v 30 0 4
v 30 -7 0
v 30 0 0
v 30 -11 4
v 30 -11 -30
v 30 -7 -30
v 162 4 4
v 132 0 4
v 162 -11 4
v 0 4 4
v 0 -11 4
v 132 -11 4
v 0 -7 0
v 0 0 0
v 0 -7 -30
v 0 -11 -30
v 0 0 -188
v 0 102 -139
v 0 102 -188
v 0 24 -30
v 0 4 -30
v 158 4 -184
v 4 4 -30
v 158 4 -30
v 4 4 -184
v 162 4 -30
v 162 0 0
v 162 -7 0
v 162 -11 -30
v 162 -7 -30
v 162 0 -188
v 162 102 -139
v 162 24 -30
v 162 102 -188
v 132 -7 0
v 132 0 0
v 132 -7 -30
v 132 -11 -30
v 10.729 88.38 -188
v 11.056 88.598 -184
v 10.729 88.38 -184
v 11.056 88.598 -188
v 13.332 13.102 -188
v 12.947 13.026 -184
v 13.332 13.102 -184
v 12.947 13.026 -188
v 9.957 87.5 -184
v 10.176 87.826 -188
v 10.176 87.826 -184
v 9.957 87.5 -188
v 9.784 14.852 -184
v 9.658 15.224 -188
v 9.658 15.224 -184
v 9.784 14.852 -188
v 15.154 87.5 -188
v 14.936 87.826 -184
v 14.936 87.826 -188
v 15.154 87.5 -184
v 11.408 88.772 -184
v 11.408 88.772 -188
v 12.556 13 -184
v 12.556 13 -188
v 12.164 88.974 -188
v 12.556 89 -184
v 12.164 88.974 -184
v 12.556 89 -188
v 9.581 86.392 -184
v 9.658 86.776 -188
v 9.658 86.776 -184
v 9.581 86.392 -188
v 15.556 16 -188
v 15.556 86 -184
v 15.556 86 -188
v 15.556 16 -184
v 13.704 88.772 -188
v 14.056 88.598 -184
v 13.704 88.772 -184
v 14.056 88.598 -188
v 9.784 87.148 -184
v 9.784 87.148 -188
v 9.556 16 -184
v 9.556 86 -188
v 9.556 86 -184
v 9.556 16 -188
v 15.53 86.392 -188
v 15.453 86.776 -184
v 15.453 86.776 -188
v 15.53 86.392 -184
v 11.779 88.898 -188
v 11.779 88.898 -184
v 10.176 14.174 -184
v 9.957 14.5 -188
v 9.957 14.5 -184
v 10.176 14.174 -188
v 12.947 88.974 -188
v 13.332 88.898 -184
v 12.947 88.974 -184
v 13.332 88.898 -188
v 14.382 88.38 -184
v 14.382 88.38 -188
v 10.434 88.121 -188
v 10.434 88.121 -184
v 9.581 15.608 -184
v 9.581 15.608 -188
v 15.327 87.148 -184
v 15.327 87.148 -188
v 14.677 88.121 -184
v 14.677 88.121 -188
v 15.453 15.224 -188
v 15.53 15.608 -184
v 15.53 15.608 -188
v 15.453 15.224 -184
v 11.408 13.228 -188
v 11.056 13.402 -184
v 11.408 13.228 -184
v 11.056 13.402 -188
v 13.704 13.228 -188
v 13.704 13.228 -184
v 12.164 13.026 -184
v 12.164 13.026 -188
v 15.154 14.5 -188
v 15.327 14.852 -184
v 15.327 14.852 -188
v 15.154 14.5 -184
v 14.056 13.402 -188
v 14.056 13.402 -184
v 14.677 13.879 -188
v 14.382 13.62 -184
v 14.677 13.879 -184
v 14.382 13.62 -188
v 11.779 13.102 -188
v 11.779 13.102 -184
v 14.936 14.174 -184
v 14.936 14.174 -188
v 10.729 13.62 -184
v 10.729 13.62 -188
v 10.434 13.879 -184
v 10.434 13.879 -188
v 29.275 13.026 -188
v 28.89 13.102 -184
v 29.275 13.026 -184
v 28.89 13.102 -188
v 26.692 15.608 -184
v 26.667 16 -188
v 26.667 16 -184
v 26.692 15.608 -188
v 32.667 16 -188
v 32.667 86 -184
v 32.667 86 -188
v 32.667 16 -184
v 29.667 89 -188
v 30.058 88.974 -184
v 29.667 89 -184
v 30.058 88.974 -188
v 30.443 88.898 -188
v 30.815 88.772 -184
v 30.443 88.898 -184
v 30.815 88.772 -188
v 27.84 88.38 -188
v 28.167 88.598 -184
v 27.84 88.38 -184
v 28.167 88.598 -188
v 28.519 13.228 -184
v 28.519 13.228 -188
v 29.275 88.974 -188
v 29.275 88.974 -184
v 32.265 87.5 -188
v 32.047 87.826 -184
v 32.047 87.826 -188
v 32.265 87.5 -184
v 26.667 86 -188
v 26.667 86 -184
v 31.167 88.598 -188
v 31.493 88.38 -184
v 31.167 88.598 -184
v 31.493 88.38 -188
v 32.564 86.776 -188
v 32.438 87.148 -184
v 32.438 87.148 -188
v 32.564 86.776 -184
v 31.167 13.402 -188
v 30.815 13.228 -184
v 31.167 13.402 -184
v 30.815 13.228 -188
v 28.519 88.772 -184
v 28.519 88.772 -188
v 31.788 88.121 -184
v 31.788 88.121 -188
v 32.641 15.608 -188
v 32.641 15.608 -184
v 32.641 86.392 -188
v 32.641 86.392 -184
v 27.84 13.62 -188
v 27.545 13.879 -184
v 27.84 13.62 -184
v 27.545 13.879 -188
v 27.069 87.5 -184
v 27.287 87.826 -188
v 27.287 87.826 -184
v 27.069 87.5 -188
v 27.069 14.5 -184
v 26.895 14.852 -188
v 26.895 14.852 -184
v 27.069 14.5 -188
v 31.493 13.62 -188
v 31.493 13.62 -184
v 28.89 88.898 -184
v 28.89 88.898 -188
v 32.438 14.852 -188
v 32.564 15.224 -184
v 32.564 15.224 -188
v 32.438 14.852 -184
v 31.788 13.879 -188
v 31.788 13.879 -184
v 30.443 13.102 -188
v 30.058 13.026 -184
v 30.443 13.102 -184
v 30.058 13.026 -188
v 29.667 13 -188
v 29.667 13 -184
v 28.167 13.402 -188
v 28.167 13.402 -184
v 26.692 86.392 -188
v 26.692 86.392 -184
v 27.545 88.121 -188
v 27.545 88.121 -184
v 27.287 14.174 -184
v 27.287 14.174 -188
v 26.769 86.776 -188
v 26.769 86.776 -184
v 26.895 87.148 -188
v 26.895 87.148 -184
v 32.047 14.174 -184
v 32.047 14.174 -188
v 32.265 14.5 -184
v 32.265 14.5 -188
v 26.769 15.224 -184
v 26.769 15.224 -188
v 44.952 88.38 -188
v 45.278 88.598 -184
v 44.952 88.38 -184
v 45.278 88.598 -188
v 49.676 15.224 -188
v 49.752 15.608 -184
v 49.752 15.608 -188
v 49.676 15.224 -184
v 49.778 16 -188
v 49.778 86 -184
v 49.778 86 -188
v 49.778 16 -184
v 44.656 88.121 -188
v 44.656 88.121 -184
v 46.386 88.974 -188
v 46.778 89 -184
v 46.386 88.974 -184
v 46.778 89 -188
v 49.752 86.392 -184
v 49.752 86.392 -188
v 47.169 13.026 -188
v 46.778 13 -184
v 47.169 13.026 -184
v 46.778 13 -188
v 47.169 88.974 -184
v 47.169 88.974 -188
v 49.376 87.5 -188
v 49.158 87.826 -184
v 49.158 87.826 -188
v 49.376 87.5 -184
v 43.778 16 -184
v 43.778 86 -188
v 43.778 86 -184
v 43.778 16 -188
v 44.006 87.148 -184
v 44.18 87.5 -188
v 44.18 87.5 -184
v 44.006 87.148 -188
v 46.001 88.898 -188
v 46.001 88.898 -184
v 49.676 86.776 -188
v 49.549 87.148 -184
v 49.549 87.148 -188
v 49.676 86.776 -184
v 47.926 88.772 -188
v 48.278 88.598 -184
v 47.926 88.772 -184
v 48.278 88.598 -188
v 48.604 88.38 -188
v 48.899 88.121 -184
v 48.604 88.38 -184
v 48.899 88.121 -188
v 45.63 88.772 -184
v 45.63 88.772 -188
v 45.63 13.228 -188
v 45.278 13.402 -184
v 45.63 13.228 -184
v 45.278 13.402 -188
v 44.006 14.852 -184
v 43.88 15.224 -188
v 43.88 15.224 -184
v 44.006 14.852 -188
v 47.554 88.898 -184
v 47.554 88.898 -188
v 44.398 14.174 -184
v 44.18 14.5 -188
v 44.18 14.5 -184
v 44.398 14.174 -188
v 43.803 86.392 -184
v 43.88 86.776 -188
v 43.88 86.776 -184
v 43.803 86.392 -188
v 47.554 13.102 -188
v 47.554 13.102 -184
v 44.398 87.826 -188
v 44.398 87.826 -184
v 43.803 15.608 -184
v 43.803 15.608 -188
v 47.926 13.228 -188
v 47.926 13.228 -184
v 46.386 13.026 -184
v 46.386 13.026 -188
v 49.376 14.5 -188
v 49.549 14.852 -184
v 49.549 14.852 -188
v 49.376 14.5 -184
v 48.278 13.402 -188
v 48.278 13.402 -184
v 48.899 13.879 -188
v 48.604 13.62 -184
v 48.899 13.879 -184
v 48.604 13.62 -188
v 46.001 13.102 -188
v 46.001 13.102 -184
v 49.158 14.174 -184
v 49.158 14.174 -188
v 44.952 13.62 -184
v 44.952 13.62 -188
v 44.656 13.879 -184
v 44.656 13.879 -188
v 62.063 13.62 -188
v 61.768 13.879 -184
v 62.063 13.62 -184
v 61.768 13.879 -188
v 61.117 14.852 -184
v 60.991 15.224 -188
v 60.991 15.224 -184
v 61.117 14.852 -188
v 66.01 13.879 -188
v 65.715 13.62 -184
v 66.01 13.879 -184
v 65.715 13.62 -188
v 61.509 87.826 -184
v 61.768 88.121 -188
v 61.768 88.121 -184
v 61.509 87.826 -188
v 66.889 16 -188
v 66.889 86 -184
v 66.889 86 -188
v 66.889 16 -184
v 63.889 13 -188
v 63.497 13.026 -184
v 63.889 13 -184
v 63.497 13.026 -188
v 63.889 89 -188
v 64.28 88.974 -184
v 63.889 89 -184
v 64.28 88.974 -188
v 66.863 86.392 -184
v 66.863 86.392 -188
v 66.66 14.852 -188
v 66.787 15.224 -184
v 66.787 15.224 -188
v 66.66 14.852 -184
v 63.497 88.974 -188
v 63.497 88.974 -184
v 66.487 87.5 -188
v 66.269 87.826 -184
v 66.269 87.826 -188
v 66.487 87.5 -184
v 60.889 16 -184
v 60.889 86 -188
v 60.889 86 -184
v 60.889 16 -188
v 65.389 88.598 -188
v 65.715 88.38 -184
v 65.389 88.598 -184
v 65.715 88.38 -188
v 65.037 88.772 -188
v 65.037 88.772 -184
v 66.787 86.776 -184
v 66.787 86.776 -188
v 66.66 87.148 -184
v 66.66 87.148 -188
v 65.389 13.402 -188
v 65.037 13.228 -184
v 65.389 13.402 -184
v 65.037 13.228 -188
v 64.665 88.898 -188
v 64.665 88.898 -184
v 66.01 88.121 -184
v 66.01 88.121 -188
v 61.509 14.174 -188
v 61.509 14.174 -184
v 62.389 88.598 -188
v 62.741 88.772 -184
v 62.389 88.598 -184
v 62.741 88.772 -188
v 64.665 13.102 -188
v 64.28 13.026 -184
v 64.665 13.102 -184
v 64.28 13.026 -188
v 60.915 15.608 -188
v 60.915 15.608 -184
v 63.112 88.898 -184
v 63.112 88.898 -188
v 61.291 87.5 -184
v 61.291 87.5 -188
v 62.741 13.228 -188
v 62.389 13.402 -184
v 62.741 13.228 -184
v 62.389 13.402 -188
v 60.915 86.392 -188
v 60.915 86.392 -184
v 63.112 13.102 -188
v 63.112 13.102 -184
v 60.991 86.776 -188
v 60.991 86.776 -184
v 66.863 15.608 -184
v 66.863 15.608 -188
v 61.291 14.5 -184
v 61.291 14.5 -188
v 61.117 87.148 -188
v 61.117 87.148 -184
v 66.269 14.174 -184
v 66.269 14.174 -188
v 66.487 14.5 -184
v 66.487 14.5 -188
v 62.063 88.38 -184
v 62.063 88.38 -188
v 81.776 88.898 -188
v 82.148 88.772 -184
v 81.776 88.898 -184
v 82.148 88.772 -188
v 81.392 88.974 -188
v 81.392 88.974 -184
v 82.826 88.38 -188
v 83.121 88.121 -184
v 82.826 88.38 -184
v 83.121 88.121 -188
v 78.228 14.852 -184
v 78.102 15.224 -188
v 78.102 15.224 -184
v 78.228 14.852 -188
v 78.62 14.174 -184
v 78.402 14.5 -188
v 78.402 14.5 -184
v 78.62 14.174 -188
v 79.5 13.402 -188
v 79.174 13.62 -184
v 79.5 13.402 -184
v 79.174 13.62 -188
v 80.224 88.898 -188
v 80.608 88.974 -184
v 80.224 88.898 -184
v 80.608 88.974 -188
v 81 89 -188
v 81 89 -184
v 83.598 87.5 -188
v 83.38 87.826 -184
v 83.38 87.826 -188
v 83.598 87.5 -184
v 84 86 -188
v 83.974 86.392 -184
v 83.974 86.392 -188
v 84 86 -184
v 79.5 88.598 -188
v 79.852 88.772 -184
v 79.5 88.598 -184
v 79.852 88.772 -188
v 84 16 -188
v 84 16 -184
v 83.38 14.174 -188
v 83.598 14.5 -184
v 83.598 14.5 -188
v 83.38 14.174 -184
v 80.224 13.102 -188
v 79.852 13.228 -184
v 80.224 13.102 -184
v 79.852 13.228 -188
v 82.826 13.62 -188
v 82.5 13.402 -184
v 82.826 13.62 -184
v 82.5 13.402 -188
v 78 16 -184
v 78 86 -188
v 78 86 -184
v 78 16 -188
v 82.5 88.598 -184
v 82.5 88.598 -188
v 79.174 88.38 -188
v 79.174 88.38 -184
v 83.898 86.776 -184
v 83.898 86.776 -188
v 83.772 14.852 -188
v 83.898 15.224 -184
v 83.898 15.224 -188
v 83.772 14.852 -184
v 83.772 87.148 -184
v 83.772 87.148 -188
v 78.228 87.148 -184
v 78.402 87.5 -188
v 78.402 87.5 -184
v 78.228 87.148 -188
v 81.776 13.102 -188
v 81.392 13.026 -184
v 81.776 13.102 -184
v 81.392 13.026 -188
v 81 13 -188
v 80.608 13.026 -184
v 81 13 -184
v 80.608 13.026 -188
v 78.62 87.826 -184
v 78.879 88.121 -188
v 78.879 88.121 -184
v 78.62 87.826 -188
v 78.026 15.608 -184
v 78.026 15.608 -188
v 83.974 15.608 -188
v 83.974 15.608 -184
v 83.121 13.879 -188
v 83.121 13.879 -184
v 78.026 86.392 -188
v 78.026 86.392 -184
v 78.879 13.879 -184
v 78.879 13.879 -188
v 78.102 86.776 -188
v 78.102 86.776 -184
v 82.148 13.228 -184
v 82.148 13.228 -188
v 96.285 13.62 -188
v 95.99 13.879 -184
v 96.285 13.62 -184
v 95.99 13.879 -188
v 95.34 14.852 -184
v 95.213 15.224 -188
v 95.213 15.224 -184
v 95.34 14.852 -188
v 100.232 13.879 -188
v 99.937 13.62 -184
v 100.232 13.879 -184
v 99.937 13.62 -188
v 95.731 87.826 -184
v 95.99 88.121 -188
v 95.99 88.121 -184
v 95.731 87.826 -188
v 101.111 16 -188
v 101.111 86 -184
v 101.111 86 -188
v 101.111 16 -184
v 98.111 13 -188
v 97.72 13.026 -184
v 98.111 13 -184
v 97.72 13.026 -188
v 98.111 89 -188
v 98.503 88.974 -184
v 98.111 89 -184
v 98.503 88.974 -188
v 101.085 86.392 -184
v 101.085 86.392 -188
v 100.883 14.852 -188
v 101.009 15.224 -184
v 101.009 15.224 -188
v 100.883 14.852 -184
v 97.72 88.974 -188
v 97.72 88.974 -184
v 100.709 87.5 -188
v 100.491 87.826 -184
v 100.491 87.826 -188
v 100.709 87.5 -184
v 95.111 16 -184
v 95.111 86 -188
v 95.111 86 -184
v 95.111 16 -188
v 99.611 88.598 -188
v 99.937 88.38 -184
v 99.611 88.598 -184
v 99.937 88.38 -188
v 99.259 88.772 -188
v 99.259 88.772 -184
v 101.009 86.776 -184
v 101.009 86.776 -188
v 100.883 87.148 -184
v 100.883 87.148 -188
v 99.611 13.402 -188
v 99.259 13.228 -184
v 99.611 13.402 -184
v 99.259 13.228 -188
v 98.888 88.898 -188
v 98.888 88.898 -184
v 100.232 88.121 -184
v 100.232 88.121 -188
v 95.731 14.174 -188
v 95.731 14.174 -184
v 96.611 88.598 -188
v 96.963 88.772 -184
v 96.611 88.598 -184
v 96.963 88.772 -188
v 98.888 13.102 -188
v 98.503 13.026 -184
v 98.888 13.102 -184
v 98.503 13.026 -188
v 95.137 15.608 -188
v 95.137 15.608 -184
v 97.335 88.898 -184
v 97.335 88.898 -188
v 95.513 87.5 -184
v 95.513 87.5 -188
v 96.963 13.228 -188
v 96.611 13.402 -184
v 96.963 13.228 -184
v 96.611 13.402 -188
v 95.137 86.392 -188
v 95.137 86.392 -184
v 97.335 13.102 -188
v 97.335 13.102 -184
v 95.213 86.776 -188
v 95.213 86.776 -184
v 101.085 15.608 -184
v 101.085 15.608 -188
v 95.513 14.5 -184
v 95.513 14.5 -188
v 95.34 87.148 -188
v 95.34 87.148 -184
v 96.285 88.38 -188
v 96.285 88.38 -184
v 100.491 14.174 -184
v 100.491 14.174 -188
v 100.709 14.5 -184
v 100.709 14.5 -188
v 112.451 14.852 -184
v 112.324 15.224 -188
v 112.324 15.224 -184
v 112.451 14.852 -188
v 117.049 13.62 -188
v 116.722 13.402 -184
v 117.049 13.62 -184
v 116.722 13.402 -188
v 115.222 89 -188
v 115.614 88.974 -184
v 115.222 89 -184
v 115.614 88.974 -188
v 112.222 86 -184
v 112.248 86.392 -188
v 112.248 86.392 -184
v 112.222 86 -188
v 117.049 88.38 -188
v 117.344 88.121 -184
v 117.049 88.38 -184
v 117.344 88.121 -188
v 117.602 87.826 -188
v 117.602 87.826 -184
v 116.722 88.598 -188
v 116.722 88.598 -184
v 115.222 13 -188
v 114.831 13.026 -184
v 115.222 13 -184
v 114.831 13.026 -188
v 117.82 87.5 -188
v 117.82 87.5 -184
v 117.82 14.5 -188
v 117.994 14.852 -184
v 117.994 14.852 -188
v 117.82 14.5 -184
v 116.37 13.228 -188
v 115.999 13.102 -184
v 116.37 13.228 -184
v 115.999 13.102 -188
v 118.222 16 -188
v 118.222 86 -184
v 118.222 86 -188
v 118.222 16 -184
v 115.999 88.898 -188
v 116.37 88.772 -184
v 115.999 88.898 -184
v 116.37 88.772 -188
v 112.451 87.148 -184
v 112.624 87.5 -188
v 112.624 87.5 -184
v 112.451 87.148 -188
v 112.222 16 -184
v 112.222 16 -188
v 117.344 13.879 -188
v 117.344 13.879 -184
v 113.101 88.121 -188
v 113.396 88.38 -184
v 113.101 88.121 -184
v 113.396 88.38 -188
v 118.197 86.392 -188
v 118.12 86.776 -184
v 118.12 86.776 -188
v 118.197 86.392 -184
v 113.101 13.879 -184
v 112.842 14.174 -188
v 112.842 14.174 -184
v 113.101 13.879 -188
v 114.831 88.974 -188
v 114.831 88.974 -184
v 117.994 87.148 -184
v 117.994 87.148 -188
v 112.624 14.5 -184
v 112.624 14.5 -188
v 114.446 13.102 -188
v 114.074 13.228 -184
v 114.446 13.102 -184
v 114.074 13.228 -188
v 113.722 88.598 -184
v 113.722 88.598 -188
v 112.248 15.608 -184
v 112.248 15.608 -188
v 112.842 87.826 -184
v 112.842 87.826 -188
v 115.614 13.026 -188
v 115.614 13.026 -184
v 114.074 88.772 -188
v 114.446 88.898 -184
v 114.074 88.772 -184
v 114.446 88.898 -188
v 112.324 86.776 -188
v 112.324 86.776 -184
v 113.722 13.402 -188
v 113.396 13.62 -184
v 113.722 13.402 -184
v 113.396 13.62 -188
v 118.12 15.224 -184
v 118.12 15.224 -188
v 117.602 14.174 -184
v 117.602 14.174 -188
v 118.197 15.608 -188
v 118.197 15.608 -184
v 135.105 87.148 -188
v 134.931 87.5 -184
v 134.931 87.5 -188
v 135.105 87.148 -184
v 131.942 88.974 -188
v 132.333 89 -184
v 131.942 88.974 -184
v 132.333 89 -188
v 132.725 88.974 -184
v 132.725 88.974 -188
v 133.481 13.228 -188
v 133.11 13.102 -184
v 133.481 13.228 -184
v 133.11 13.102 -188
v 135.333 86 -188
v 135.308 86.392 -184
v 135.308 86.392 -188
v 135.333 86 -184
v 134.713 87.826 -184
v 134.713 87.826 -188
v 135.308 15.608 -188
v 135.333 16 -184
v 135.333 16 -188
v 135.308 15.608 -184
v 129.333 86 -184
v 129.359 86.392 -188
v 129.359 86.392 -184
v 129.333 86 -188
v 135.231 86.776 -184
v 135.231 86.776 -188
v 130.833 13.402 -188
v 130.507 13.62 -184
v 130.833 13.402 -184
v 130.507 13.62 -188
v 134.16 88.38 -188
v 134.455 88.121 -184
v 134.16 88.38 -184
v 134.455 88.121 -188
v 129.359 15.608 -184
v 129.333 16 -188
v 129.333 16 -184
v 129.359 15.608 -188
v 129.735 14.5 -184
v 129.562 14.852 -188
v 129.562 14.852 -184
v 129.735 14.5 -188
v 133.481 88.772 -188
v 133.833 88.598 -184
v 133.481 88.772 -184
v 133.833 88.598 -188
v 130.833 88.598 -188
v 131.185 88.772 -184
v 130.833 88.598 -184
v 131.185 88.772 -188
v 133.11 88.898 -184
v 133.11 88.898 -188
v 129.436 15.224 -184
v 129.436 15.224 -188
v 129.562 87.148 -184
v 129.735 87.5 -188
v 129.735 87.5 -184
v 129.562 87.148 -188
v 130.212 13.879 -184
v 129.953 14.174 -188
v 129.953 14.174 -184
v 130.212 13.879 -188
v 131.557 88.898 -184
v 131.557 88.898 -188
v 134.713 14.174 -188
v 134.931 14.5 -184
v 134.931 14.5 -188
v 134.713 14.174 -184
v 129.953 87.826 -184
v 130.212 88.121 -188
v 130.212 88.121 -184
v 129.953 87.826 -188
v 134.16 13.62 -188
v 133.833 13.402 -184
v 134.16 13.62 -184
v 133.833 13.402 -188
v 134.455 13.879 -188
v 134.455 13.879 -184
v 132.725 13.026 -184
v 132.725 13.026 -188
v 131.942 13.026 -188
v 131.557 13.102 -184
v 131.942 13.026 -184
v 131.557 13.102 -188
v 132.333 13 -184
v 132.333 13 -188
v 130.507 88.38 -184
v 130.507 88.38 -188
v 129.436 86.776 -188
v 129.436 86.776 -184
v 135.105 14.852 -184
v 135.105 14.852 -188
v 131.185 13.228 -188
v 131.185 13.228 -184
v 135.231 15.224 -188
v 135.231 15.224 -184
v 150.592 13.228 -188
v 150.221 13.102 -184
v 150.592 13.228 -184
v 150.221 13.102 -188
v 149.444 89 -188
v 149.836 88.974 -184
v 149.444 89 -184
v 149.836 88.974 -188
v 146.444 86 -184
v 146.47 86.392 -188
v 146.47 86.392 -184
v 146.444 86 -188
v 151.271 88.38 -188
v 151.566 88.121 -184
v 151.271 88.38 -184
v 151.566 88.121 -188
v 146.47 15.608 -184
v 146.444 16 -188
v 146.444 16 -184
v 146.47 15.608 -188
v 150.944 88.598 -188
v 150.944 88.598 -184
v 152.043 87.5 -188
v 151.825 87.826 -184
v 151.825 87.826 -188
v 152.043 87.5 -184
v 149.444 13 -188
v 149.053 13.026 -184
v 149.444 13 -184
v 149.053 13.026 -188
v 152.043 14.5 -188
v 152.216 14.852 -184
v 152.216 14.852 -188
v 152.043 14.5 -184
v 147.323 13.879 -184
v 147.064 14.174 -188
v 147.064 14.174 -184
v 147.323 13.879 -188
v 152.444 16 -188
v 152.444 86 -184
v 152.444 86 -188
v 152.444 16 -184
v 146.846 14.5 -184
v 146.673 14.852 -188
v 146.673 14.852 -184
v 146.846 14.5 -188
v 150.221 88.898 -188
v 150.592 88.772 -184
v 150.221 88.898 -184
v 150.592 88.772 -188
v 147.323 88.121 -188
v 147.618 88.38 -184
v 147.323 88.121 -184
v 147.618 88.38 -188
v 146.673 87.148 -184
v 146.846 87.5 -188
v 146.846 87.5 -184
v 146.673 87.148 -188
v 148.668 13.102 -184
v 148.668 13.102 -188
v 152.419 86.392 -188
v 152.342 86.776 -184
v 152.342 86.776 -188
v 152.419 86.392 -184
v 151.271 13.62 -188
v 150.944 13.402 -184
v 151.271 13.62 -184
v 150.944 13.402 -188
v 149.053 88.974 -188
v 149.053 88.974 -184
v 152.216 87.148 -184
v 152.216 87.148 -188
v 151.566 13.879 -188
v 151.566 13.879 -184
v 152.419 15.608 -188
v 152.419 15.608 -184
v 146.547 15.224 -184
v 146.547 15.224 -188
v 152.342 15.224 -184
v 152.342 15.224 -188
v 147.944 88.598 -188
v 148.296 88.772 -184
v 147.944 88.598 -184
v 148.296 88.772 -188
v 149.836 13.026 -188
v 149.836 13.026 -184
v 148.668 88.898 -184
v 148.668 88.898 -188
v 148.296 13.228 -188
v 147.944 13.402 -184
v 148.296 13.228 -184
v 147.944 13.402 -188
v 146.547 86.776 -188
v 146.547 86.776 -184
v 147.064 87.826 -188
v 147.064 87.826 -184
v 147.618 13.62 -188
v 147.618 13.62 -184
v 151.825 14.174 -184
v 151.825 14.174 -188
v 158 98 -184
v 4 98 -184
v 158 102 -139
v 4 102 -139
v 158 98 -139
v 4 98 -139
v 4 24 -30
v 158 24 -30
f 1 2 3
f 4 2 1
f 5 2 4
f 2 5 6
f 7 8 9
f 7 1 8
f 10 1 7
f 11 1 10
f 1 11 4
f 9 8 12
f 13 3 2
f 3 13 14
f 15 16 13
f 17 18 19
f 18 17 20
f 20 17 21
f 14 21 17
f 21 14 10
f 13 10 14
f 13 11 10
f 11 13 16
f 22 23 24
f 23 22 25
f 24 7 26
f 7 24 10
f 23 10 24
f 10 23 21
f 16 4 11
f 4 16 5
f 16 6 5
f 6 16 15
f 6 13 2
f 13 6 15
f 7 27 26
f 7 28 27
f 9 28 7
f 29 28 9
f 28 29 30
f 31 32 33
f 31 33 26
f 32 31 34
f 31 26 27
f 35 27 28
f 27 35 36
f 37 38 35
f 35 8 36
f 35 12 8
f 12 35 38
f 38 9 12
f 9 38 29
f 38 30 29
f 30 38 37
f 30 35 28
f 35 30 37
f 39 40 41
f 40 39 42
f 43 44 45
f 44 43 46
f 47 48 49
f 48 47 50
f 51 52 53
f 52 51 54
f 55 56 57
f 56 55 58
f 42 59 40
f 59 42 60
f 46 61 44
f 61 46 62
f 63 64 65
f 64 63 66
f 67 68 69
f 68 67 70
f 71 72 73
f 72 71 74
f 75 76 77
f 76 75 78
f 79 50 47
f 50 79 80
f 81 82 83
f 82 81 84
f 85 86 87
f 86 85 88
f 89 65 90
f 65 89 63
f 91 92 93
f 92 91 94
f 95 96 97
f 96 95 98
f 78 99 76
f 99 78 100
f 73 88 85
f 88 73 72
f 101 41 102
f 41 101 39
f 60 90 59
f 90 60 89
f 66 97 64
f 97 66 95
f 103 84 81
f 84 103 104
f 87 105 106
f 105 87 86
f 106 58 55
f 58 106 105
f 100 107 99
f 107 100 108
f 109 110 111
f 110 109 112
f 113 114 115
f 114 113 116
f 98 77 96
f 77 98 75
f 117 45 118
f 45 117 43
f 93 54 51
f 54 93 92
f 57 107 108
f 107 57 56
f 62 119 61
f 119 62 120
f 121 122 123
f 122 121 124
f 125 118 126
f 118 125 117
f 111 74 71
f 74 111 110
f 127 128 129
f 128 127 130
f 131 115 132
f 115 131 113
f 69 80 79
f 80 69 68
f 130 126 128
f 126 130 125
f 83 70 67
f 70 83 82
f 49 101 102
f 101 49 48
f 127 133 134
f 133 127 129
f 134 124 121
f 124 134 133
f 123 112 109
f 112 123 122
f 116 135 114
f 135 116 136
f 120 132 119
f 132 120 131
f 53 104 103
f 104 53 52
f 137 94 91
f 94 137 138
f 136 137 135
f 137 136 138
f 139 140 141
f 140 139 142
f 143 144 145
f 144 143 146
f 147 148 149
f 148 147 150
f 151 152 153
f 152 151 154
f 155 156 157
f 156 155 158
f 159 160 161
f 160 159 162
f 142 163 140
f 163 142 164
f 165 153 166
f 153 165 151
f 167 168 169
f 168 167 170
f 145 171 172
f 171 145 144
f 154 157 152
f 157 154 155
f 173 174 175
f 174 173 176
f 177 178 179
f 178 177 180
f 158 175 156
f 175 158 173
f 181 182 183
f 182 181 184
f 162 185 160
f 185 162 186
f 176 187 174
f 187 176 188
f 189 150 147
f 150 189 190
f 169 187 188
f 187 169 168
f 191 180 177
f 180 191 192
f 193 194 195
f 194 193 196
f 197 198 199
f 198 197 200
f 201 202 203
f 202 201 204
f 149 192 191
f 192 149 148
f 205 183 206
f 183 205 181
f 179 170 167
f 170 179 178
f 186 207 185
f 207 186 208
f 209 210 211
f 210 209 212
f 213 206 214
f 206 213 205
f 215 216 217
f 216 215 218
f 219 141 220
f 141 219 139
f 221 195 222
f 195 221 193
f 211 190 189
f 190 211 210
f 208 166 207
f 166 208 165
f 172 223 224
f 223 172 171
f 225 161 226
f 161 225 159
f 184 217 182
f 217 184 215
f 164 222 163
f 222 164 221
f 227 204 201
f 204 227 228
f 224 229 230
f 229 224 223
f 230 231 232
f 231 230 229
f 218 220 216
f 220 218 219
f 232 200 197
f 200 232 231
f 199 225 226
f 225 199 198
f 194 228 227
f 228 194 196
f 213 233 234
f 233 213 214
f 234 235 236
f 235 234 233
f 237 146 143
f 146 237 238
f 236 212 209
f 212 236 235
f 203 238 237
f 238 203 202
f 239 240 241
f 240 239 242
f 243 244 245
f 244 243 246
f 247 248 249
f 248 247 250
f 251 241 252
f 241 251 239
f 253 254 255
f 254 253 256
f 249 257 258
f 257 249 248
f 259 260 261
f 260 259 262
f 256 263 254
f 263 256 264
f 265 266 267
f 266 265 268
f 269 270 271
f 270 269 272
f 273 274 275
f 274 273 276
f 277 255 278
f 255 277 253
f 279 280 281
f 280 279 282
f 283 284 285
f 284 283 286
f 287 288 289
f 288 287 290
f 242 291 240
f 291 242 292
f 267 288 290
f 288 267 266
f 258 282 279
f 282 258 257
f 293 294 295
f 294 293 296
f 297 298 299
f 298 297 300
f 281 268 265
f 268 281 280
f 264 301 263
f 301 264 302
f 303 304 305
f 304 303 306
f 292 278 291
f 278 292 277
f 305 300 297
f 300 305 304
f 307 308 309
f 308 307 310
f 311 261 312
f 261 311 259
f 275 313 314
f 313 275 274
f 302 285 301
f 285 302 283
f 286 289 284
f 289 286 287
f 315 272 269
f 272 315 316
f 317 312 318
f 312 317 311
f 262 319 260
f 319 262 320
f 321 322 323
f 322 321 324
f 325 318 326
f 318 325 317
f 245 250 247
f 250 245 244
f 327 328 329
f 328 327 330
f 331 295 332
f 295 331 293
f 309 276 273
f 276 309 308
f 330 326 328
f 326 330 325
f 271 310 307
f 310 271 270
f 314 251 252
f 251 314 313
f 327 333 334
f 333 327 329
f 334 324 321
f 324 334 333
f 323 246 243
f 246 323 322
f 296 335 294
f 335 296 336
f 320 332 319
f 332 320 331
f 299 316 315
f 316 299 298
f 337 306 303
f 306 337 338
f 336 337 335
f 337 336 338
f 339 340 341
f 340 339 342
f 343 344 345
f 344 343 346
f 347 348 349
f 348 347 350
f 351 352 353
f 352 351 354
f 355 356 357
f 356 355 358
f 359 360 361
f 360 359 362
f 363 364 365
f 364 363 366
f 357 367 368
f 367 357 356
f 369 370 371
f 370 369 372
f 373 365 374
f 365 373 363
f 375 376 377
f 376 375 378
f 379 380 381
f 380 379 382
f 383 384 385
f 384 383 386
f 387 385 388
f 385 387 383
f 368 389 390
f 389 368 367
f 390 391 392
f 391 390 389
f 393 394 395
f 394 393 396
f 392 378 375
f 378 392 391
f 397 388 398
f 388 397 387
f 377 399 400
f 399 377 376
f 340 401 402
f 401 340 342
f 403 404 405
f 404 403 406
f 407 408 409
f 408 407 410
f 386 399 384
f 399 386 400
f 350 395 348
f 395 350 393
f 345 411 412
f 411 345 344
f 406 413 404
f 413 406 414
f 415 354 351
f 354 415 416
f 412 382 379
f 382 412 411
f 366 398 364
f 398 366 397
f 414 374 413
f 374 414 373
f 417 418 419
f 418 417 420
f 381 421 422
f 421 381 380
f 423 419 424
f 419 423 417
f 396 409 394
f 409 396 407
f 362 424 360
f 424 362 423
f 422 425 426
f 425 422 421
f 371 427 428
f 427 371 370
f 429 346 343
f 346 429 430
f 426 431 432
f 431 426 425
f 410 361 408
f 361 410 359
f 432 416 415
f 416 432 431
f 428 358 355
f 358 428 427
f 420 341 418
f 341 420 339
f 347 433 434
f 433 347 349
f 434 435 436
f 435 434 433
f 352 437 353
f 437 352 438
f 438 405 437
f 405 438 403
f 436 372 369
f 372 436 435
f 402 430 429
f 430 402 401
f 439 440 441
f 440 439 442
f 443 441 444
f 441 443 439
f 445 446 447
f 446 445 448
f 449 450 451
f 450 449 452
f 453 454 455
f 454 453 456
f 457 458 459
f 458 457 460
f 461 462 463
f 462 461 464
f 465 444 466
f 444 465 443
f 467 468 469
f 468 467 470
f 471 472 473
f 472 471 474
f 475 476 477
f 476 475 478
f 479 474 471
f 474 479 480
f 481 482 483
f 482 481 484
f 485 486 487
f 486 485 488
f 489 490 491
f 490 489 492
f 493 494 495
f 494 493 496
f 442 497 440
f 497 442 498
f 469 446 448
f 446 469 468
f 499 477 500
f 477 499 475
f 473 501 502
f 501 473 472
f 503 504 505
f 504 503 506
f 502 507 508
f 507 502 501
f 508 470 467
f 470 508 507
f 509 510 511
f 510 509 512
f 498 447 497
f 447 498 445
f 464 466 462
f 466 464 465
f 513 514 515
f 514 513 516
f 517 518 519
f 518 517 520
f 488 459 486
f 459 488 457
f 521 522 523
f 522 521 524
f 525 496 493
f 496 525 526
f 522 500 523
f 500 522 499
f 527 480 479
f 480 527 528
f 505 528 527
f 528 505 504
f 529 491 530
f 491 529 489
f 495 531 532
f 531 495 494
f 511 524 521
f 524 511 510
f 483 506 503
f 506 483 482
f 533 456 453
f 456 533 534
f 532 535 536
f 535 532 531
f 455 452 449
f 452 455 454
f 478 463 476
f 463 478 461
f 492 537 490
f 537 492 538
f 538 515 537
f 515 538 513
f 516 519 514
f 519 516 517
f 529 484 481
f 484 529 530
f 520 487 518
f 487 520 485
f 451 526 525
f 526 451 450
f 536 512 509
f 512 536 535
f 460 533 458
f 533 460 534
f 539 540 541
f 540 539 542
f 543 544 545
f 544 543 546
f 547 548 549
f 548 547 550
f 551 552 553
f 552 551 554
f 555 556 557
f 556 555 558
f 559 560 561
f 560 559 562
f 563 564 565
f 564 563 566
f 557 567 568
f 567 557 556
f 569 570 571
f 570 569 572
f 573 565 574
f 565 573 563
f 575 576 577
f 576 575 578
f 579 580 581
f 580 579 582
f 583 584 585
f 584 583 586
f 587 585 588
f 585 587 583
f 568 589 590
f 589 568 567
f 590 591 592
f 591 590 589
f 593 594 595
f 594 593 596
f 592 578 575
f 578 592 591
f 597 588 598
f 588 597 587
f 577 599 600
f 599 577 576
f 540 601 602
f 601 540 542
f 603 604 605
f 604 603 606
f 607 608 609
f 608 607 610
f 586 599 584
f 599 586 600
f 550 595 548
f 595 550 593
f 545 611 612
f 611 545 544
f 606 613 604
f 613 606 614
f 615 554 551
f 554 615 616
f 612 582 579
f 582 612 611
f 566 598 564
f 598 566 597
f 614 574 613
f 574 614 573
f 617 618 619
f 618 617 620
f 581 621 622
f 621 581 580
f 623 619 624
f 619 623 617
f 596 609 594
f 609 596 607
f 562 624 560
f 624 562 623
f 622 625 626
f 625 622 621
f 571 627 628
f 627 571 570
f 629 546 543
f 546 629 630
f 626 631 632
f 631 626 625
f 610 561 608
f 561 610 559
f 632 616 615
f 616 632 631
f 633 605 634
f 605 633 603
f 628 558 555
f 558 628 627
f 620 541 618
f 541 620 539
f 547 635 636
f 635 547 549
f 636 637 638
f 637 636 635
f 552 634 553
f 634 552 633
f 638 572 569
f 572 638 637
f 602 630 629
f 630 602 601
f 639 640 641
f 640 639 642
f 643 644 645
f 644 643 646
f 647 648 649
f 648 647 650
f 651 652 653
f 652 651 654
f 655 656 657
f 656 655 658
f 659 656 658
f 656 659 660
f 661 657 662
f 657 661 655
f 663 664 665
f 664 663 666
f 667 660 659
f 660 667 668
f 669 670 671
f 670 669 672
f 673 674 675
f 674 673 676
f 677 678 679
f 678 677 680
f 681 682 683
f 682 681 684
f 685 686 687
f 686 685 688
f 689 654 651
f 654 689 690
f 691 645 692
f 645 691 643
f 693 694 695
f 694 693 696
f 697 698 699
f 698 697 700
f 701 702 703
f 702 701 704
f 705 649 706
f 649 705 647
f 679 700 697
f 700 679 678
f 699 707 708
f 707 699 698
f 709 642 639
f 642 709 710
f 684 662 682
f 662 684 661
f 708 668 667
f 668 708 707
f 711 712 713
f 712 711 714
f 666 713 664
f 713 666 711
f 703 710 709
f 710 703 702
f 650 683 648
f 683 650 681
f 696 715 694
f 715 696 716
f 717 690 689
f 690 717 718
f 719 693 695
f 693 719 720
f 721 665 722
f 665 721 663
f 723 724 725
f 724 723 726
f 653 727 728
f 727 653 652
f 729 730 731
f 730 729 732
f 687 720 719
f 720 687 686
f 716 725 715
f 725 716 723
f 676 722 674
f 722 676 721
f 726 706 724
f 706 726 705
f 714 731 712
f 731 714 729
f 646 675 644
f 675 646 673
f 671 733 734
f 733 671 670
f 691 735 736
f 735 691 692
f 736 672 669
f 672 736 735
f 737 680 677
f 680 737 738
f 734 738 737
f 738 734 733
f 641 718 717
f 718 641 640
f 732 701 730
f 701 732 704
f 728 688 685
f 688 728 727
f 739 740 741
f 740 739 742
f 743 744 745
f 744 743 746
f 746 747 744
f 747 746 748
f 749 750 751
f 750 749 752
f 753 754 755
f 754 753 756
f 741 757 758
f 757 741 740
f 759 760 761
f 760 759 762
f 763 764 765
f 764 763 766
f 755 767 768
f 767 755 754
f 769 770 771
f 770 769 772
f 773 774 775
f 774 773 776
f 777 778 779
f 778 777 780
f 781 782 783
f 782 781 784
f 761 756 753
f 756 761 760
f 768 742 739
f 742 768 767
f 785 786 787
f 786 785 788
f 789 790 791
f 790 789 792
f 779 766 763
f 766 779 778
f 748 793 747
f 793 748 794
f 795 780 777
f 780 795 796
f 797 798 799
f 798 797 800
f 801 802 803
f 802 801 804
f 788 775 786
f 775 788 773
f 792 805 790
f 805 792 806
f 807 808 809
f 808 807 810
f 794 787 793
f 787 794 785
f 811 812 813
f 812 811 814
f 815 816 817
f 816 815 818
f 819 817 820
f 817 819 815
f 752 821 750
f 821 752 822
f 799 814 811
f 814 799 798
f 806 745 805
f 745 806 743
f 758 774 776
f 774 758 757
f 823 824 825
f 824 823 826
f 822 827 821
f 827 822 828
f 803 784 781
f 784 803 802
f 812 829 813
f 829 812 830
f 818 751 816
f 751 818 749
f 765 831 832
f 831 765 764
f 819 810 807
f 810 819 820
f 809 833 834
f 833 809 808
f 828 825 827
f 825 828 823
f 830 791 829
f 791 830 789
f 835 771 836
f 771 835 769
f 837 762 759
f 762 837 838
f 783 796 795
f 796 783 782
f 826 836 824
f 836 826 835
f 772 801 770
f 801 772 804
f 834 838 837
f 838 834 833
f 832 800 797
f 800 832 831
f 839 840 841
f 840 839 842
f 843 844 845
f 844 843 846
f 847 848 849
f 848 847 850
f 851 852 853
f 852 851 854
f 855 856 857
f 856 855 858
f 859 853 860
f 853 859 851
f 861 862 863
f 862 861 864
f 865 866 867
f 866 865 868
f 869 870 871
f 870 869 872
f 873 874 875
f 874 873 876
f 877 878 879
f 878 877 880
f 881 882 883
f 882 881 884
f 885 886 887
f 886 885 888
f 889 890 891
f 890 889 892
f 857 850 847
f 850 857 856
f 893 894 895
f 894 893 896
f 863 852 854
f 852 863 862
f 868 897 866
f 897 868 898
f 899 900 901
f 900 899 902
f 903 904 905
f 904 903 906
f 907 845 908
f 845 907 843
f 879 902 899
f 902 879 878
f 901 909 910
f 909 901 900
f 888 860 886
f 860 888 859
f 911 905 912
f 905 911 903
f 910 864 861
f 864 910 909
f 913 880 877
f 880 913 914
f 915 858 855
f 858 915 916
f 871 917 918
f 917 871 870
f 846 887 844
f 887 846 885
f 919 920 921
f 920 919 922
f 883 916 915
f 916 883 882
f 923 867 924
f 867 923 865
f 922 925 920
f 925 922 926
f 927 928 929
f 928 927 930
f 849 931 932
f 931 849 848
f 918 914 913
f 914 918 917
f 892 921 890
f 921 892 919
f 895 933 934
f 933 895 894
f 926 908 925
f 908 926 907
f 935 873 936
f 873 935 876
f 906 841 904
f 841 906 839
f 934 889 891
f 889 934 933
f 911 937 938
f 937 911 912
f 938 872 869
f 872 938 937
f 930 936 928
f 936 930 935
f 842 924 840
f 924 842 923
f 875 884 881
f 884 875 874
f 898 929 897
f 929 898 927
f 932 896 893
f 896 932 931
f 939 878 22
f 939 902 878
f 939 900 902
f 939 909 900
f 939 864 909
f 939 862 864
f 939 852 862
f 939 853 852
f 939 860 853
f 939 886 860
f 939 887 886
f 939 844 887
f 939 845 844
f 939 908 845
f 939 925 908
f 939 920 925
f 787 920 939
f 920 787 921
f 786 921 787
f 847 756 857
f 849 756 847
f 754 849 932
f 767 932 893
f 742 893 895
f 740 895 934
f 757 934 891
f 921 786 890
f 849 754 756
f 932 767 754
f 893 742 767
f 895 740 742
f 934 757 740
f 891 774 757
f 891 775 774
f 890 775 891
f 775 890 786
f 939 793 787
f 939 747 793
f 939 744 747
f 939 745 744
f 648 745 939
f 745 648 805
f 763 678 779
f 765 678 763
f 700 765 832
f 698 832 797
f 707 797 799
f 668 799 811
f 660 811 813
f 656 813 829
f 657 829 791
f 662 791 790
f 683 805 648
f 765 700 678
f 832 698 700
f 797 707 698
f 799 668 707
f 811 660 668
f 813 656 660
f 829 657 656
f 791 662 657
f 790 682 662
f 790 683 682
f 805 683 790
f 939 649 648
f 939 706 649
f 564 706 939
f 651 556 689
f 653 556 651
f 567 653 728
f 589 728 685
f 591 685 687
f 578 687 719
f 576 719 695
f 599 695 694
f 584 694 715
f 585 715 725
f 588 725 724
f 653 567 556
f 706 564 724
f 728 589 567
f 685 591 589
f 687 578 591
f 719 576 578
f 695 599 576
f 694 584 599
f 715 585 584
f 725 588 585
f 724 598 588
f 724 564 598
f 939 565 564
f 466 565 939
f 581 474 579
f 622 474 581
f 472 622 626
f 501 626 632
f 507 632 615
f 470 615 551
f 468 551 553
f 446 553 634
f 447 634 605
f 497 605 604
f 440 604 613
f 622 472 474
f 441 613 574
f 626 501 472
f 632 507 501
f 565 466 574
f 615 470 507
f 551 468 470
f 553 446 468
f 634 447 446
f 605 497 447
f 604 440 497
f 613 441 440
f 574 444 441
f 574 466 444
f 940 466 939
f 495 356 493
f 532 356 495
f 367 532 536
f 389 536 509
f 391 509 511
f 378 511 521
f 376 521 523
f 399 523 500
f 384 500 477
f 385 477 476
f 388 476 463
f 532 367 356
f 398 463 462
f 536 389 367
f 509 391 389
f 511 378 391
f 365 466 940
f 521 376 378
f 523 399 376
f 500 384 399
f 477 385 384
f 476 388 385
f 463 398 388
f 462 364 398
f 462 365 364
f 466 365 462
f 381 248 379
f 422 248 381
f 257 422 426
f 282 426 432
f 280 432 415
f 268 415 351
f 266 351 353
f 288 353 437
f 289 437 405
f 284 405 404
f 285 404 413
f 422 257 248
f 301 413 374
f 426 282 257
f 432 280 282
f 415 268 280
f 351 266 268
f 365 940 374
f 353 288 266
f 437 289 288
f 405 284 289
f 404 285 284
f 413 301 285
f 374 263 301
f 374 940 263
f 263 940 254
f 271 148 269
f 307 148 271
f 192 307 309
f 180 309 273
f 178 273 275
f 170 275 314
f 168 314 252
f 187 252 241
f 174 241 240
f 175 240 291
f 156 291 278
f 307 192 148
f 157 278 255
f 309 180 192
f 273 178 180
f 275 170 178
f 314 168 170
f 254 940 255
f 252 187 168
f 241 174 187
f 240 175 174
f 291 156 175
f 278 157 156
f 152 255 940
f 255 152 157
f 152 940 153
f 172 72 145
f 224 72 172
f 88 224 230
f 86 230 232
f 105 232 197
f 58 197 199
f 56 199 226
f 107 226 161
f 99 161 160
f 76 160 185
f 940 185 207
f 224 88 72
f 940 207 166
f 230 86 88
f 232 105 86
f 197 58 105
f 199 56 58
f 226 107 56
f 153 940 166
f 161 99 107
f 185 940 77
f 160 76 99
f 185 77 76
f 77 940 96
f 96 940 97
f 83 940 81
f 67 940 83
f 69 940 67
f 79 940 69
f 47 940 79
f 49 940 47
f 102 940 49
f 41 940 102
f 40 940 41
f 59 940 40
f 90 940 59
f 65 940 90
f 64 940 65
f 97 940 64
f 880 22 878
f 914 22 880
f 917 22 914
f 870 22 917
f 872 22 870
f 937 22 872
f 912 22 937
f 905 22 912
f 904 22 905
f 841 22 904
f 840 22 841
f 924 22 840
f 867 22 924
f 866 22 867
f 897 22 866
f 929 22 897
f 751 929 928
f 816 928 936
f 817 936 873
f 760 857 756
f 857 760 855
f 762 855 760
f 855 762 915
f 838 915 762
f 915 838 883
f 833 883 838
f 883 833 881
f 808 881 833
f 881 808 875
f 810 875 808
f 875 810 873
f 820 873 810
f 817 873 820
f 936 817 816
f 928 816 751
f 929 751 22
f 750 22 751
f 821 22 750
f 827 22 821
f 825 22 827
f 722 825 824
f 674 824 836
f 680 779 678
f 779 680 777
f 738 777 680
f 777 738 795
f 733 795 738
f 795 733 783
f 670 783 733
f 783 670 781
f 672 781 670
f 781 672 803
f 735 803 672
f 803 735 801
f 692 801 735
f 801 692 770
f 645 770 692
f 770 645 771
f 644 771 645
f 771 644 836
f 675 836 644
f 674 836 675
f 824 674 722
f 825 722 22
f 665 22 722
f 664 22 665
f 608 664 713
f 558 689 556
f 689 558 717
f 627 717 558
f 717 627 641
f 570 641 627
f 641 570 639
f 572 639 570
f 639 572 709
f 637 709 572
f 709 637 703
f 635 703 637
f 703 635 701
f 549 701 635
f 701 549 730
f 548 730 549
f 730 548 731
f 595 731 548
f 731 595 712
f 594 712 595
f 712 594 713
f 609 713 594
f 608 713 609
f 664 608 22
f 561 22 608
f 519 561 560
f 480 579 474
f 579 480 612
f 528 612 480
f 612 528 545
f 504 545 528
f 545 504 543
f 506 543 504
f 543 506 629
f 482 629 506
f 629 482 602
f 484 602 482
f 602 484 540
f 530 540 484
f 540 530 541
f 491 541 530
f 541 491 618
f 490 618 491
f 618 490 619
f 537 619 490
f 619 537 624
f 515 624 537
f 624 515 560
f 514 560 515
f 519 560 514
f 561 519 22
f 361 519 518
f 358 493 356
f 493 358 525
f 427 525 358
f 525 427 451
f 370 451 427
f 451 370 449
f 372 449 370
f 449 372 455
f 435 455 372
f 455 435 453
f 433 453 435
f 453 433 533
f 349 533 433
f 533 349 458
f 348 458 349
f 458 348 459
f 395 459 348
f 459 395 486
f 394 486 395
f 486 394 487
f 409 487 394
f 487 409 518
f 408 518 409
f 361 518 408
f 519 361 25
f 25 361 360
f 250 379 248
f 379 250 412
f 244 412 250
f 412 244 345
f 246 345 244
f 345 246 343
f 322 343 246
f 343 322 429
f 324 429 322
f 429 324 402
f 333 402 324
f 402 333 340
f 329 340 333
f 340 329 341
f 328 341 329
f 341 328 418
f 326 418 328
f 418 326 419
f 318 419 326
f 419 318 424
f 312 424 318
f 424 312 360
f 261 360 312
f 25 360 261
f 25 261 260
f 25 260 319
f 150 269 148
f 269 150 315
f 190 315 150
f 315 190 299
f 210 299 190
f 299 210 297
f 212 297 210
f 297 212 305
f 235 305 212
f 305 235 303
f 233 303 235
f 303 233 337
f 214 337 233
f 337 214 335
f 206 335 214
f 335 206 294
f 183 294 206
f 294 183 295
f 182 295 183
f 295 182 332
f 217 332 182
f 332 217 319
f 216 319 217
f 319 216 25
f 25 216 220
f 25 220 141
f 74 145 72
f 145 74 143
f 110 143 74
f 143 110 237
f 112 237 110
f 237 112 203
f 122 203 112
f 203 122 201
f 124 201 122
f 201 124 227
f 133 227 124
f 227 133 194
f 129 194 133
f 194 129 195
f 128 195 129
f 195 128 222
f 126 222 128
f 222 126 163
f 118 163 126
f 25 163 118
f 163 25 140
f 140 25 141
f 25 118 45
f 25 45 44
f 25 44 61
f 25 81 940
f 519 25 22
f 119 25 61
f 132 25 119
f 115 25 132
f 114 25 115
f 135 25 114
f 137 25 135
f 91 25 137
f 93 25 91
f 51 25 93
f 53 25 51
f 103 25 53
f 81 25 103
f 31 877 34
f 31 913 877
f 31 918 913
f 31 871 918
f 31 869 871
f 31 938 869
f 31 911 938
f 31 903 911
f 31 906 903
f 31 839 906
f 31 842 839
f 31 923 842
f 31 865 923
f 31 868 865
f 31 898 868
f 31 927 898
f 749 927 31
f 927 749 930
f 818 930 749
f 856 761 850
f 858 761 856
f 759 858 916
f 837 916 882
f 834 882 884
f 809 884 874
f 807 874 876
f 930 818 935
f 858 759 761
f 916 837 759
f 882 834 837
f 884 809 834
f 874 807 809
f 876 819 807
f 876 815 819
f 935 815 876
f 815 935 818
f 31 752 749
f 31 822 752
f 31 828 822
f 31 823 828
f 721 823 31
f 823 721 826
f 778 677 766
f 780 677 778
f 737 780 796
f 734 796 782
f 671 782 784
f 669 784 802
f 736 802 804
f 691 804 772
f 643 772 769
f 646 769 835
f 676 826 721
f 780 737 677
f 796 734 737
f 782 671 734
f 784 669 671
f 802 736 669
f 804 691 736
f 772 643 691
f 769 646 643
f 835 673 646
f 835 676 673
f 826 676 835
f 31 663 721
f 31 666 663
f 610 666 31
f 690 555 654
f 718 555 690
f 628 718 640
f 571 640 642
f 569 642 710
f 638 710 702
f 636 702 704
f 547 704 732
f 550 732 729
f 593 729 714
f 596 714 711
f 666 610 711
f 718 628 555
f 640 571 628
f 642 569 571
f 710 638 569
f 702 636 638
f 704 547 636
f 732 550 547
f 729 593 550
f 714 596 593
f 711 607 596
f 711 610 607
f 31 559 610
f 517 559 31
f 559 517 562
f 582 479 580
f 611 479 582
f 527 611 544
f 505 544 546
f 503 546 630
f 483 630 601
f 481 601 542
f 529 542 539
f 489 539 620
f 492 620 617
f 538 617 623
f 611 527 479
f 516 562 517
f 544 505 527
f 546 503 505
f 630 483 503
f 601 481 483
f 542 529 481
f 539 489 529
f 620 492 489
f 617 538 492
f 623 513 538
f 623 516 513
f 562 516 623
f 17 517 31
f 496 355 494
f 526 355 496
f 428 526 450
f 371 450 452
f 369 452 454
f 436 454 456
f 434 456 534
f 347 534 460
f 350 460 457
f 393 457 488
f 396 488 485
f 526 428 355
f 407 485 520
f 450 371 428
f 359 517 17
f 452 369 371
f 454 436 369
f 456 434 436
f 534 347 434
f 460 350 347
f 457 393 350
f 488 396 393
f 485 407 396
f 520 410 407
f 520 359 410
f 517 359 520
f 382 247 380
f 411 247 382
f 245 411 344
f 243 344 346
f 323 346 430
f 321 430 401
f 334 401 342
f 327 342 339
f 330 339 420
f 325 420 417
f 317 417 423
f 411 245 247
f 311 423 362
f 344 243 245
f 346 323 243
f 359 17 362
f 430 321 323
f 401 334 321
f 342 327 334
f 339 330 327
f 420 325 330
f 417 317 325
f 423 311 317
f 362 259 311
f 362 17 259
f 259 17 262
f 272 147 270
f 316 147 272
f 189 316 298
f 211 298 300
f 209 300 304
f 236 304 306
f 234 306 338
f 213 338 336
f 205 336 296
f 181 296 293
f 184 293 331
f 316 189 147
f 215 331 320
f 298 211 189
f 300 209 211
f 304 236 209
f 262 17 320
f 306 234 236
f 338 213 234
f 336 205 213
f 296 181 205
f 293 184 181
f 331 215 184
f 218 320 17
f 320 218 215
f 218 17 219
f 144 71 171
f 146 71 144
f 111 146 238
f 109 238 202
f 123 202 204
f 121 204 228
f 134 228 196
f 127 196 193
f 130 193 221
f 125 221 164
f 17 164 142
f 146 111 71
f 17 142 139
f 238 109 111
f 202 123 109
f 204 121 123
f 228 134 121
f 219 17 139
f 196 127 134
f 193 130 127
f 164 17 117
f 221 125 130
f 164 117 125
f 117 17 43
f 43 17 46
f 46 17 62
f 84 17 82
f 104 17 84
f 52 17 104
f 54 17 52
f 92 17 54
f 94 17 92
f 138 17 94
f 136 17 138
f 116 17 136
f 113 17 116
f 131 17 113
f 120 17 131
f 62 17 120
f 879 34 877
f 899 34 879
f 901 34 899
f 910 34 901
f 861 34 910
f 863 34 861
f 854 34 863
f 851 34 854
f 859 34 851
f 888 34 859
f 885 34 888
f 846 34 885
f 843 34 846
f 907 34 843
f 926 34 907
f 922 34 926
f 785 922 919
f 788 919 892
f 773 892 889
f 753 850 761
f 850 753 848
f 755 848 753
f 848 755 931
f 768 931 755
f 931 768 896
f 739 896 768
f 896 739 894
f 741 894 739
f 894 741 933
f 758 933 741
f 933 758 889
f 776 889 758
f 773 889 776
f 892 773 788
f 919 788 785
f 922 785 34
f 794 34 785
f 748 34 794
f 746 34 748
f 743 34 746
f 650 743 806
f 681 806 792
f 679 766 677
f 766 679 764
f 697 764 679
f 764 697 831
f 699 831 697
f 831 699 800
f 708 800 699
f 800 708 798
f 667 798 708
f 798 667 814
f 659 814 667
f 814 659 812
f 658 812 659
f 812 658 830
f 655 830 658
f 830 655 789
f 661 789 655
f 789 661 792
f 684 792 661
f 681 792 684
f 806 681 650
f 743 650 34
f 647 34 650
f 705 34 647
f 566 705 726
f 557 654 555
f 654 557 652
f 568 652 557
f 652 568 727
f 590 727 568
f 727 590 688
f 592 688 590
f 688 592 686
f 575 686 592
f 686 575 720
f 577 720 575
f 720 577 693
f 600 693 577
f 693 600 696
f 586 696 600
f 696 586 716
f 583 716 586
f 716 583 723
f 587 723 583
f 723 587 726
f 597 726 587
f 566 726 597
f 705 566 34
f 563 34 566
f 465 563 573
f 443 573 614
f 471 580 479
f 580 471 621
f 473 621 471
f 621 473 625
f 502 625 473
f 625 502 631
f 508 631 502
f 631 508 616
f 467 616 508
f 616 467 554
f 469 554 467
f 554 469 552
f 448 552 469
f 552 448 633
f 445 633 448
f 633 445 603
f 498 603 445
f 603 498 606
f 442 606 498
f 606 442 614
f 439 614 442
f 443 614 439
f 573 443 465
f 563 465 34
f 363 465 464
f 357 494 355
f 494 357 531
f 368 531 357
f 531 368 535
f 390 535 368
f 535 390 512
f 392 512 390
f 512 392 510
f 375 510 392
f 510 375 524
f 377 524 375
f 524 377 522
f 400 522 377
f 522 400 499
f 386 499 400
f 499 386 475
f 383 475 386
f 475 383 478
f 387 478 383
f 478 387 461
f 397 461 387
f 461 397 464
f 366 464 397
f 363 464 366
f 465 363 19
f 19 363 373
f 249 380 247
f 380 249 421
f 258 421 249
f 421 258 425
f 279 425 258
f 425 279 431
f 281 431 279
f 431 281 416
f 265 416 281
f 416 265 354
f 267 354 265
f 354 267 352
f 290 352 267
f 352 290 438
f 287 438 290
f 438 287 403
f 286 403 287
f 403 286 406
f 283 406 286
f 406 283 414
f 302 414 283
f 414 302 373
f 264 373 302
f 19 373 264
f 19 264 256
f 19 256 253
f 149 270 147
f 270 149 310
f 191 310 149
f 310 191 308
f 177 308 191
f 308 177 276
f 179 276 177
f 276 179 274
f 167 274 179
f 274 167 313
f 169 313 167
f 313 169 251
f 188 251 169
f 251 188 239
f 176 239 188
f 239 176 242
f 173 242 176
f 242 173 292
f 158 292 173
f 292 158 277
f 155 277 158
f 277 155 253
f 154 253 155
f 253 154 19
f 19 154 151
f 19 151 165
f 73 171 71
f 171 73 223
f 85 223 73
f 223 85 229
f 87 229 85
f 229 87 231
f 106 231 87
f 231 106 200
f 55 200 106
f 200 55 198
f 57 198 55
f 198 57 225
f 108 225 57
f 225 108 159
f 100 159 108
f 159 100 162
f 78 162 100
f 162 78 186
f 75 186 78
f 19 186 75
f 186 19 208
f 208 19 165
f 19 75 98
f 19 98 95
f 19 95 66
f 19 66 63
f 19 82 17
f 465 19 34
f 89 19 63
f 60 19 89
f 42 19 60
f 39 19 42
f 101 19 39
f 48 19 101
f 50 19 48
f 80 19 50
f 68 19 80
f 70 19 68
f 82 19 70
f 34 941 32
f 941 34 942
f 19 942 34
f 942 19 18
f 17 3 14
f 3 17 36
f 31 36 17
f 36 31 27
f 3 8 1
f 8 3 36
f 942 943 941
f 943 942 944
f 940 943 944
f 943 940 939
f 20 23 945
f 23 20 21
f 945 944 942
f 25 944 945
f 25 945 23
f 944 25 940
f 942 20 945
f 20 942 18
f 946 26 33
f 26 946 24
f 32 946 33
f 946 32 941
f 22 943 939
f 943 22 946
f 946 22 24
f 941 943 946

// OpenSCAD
// Suport agățat pe acvariu pentru filtrul OASE FiltoSmart 60
// Dimensiuni filtru (OASE): 150 x 90 x 164 mm (L x l x H)
//
// Suportul se agață pe marginea geamului acvariului (cârlige peste geam),
// iar filtrul stă într-un coș pe exteriorul acvariului.
// Toate valorile sunt în mm și pot fi modificate mai jos.
//
// Printare recomandată: culcat pe o parte laterală (fără suporturi),
// PETG, 4 perimetre, 25-30% infill.

/* [Filtru] */
filtru_L = 150;      // lungimea filtrului (paralel cu geamul)
filtru_l = 90;       // lățimea filtrului (perpendicular pe geam)
filtru_H = 164;      // înălțimea filtrului
joc      = 2;        // joc pe fiecare parte

/* [Acvariu] */
geam_grosime = 6;    // grosimea geamului acvariului (MĂSOARĂ-L!)
geam_joc     = 1;    // joc suplimentar pentru geam / silicon
carlig_interior = 30; // cât coboară cârligul în interiorul acvariului
sub_margine  = 20;   // cât de jos stă capacul filtrului sub marginea geamului

/* [Construcție] */
perete   = 4;        // grosime pereți
latime_carlig = 30;  // lățimea fiecărui cârlig
perete_cos = 45;     // înălțimea pereților coșului (față / lateral față)
fante    = true;     // fante de aerisire / scurgere în podea

$fn = 48;

// ---- valori derivate ----
int_L = filtru_L + 2*joc;
int_l = filtru_l + 2*joc;
ext_L = int_L + 2*perete;
z_podea = -(filtru_H + sub_margine);   // fața de sus a podelei
g = geam_grosime + geam_joc;            // deschiderea cârligului

// Sistem de coordonate:
//  X = de-a lungul geamului, Y = spre exterior (geamul ocupă Y ∈ [-g, 0]),
//  Z = sus (Z = 0 este muchia de sus a geamului).

module placa_spate() {
    // stă lipită de fața exterioară a geamului
    translate([0, 0, z_podea - perete])
        cube([ext_L, perete, -z_podea + perete + perete]);
}

module carlig() {
    // punte peste geam
    translate([0, -g - perete, 0]) cube([latime_carlig, g + 2*perete, perete]);
    // buză interioară
    translate([0, -g - perete, -carlig_interior])
        cube([latime_carlig, perete, carlig_interior + perete]);
}

module podea() {
    difference() {
        translate([0, 0, z_podea - perete])
            cube([ext_L, perete + int_l + perete, perete]);
        if (fante) {
            nr = floor(int_L / 16);
            pas = int_L / nr;
            for (i = [0 : nr - 1])
                translate([perete + pas*(i + 0.5) - 3, perete + 12, z_podea - perete - 1])
                    hull() {
                        translate([3, 0, 0]) cylinder(r = 3, h = perete + 2);
                        translate([3, int_l - 24, 0]) cylinder(r = 3, h = perete + 2);
                    }
        }
    }
}

module perete_fata() {
    translate([0, perete + int_l, z_podea - perete])
        cube([ext_L, perete, perete_cos + perete]);
}

module perete_lateral() {
    // triunghiular: înalt la spate (rigidizare), scund în față
    y_fata = perete + int_l + perete;
    z0 = z_podea - perete;
    z_sus_spate = -sub_margine - 10;
    rotate([90, 0, 90])
        linear_extrude(perete)
            polygon([
                [0, z0],
                [y_fata, z0],
                [y_fata, z_podea + perete_cos],
                [perete + 20, z_sus_spate],
                [0, z_sus_spate]
            ]);
}

module suport() {
    union() {
        placa_spate();
        carlig();
        translate([ext_L - latime_carlig, 0, 0]) carlig();
        podea();
        perete_fata();
        perete_lateral();
        translate([ext_L - perete, 0, 0]) perete_lateral();
    }
}

suport();

// Previzualizare filtru (doar în F5, nu apare în STL)
%translate([perete + joc, perete + joc, z_podea]) cube([filtru_L, filtru_l, filtru_H]);
// Previzualizare geam
%translate([-20, -geam_grosime, -250]) cube([ext_L + 40, geam_grosime, 250]);
